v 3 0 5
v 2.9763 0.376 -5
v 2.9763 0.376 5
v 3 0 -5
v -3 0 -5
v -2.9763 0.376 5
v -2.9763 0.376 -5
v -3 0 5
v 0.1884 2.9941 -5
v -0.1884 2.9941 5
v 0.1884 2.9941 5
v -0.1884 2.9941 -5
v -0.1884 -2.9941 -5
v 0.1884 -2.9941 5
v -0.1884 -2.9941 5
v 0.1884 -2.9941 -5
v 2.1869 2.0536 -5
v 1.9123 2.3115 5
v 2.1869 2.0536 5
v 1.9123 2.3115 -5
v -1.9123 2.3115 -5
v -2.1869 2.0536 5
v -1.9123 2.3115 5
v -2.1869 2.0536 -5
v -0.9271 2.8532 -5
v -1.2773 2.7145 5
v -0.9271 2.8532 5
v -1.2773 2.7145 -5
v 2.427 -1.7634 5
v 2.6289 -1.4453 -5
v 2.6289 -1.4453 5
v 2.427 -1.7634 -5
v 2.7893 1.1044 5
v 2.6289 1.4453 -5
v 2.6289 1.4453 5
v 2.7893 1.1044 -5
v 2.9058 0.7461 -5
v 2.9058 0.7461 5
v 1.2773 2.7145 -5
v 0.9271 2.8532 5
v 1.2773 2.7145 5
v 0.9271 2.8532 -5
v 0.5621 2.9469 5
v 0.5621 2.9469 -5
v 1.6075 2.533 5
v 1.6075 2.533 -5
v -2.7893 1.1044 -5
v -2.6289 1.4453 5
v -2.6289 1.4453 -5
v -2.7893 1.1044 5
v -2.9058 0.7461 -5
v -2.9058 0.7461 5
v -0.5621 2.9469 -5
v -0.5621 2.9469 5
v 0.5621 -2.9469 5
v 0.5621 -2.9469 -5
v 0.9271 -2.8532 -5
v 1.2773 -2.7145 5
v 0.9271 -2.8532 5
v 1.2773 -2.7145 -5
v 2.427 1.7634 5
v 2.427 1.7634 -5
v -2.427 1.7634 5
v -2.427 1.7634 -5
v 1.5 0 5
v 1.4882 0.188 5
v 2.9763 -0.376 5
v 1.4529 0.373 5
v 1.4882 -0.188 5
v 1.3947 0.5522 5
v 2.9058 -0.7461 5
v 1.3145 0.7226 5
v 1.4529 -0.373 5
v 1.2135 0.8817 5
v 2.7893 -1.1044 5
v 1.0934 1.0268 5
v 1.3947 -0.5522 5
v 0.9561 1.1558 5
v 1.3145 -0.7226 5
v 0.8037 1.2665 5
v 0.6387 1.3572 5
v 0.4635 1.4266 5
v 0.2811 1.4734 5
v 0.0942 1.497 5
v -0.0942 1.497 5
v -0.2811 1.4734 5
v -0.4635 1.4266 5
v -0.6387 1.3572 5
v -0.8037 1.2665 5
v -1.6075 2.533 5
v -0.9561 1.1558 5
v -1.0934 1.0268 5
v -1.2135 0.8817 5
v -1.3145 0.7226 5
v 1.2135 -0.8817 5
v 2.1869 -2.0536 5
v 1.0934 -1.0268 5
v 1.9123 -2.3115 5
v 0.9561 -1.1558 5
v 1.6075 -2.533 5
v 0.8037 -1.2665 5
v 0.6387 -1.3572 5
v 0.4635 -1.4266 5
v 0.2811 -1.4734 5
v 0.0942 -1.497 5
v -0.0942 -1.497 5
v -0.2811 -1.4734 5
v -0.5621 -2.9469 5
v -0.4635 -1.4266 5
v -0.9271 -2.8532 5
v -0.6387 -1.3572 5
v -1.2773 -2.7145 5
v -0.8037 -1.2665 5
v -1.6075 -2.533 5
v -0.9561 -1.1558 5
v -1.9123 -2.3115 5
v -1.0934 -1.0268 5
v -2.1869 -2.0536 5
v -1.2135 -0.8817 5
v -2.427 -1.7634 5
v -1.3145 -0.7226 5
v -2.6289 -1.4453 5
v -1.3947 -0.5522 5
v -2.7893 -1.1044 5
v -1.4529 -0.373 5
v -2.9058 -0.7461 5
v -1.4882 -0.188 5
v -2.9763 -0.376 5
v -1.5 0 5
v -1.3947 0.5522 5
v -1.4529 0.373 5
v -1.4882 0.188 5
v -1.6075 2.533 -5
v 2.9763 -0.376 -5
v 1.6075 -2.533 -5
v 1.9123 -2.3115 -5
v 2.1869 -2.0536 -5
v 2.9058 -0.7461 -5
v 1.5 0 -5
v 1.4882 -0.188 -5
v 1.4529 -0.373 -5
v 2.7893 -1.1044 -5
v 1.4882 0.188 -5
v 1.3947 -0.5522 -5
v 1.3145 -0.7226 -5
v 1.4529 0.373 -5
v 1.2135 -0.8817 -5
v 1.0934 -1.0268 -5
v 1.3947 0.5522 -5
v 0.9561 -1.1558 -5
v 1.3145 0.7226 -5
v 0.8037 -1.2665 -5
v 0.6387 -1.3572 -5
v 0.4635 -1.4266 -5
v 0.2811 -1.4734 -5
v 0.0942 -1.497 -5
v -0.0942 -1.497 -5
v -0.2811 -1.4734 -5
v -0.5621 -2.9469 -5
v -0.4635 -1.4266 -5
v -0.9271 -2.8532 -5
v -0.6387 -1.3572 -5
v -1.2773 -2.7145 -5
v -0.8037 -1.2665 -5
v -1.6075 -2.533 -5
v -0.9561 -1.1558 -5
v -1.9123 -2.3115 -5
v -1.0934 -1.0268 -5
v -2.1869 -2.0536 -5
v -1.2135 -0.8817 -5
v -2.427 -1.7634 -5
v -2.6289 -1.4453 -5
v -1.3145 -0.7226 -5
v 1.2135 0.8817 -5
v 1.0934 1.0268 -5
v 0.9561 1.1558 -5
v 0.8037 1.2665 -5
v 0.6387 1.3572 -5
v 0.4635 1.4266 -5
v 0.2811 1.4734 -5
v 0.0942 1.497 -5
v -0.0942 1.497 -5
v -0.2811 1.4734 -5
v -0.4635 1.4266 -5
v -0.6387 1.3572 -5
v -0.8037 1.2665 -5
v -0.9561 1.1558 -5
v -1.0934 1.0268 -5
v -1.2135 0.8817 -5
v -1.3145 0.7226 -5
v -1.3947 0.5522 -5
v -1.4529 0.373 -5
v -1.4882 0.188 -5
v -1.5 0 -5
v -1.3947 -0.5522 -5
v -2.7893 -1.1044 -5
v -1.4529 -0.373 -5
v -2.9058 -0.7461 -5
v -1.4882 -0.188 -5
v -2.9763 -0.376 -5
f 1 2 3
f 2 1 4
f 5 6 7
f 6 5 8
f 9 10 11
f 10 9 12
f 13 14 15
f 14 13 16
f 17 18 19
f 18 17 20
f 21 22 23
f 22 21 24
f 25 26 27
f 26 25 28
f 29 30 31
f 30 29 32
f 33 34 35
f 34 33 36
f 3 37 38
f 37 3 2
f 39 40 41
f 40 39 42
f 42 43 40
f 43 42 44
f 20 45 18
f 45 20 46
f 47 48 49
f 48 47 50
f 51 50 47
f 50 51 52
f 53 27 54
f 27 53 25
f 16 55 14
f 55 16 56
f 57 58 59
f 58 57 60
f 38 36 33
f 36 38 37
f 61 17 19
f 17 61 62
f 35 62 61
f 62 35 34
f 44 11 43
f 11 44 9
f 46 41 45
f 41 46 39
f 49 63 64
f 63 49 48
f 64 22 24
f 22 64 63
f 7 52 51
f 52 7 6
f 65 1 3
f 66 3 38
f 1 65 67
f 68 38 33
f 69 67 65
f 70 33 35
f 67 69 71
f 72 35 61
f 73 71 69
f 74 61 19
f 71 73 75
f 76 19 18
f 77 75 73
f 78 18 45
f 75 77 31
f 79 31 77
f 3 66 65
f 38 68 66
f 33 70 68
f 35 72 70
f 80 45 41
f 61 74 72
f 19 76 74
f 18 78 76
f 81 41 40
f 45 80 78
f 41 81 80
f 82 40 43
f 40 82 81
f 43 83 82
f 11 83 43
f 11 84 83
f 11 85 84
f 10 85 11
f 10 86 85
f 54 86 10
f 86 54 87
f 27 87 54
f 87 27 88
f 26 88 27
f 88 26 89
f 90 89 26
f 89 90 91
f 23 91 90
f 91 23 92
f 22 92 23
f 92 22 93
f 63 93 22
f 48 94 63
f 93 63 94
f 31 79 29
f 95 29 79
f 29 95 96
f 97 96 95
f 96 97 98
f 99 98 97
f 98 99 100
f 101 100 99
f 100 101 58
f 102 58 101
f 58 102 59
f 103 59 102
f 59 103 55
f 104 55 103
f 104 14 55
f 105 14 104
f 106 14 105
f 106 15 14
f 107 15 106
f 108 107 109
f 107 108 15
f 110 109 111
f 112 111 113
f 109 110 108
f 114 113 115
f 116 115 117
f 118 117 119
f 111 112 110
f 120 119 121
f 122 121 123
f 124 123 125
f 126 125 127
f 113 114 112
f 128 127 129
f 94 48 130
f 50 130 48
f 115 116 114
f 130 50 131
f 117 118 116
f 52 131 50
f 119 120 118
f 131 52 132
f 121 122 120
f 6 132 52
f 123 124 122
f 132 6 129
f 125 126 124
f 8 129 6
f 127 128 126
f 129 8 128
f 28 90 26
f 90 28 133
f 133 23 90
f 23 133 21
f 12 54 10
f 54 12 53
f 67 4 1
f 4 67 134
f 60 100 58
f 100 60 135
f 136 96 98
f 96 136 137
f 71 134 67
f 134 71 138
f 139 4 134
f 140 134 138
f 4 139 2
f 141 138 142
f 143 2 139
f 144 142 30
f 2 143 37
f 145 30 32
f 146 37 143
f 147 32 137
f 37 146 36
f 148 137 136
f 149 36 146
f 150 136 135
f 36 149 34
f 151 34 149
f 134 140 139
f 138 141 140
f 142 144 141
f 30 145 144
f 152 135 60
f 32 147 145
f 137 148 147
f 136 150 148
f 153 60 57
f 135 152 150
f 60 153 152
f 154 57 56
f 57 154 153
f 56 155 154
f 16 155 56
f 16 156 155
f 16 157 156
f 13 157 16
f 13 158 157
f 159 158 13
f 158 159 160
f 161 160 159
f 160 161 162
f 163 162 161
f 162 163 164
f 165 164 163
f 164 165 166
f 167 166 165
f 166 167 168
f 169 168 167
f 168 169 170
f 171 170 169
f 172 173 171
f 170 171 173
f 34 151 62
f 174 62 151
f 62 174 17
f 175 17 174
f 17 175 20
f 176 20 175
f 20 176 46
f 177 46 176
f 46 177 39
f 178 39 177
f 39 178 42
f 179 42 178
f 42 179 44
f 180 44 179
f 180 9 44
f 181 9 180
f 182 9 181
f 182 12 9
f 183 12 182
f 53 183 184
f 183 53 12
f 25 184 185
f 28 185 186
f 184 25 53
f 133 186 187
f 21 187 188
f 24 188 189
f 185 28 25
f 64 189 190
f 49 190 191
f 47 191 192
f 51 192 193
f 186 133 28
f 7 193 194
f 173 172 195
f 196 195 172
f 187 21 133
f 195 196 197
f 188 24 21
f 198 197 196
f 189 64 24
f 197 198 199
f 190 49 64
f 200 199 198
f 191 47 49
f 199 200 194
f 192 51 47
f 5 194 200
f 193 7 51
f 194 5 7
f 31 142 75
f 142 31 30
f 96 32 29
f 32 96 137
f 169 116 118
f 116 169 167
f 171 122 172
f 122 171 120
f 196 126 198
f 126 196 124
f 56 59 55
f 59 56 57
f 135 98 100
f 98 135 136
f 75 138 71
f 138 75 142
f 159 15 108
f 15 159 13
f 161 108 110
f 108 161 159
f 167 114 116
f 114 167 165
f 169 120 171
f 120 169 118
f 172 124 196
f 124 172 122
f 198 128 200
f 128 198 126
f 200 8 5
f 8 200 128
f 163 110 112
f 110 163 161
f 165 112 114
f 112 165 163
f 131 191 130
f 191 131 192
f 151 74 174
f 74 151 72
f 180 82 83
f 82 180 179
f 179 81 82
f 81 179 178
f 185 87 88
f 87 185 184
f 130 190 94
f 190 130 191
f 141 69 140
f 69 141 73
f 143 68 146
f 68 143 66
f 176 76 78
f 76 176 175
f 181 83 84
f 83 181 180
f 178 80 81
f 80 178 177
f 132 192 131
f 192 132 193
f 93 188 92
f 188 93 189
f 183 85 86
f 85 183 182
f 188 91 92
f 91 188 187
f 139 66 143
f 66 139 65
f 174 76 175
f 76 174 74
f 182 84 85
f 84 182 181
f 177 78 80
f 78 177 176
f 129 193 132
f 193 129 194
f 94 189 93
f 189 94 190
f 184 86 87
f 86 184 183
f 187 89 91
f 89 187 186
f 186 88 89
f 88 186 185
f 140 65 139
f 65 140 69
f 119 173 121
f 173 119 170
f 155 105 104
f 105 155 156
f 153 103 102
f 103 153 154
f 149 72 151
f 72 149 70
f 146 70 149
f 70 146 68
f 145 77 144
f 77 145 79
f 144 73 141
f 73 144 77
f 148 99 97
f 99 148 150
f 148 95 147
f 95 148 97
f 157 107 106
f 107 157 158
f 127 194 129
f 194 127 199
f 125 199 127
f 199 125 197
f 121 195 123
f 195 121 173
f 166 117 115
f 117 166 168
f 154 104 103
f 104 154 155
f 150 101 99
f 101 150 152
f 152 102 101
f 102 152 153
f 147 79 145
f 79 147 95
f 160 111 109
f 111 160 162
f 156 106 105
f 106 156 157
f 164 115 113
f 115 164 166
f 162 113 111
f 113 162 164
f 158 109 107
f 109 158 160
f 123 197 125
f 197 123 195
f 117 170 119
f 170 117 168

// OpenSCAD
$fn = 50;


difference() {
	union() {
		translate(v = [0, 0, -5.0000000000]) {
			cylinder(h = 10, r = 3.0000000000);
		}
	}
	union() {
		translate(v = [0, 0, -100.0000000000]) {
			cylinder(h = 200, r = 1.5000000000);
		}
	}
}
